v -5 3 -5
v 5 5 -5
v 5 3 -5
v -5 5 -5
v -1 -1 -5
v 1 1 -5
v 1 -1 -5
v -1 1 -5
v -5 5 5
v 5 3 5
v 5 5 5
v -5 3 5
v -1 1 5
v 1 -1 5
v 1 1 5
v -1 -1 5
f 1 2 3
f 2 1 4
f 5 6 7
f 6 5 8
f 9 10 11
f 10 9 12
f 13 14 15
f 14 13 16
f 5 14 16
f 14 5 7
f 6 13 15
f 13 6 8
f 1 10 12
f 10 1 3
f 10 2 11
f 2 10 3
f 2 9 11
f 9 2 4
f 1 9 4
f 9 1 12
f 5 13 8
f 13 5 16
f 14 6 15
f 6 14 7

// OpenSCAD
// Generated by SolidPython 1.1.3 on 2025-02-20 04:04:14
$fn=50;


intersection() {
	translate(v = [-5.0000000000, -5.0000000000, -5.0000000000]) {
		linear_extrude(height = 10) {
			polygon(points = [[0, 0], [2.0000000000, 0], [2.0000000000, 4.0000000000], [7.5000000000, 4.0000000000], [7.5000000000, 6.0000000000], [2.0000000000, 6.0000000000], [2.0000000000, 8.0000000000], [10, 8.0000000000], [10, 10], [0, 10]]);
		}
	}
	rotate(a = -90, v = [0, 0, 1]) {
		translate(v = [-5.0000000000, -5.0000000000, -5.0000000000]) {
			linear_extrude(height = 10) {
				polygon(points = [[0, 0], [2.0000000000, 0], [2.0000000000, 4.0000000000], [7.5000000000, 4.0000000000], [7.5000000000, 6.0000000000], [2.0000000000, 6.0000000000], [2.0000000000, 8.0000000000], [10, 8.0000000000], [10, 10], [0, 10]]);
			}
		}
	}
}
/***********************************************
*********      SolidPython code:      **********
************************************************
 
from solid import *
from solid.utils import *

import math
import matplotlib.pyplot as plt
import subprocess
import os

class Hole:
    def __init__(self, x, y, radius):
        """
        Hole defined by:
        :param x: x dimension for center point of the circle as a ratio of letter height
        :param y: y dimension for center point of the circle as a ratio of letter height
        :param radius: radius of circle as a ratio of letter height
        """
        self.x = x
        self.y = y
        self.radius = radius

class Letter3D:
    def __init__(self, name, outer_shape_points, height, holes=None):
        """
        3D Letter defined by:
        :param name: name of letter
        :param outer_shape_points: points defining the outer shape of the letter
        :param heigh: size of cube that letter fits inside
        :param holes: list of Holes
        """
        self.name = name
        self.outer_shape_points = outer_shape_points
        self.holes = holes if holes is None else []
        self.height = height


    def generate(self):
        shape = polygon(points=self.outer_shape_points)

        if self.holes:
            for hole in self.holes:
                circle_hole = circle(r=hole.radius*self.height)
                positioned_hole = translate([hole.x*self.height, hole.y*self.height])(circle_hole)
                shape = difference()(shape, positioned_hole)
        
        shape_3d = linear_extrude(height=self.height)(shape)
        shape_3d = translate([-self.height/2, -self.height/2, -self.height/2])(shape_3d)
        return shape_3d
    
    def render(self):
        scad_render_to_file(self.shape, f"output/{self.name}.scad", file_header='$fn=50;')
        subprocess.run(["C:\\Program Files\\OpenSCAD\\openscad.exe", "-o", f"output\\{self.name}.stl", f"output\\{self.name}.scad"])


class TwoLetter3D:
    def __init__(self, height, letterA, letterA_face, letterB=None, letterB_face=None):
        self.height = height
        self.letterA = letterA
        self.letterB = letterB
        self.letterA_face = letterA_face
        self.letterB_face = letterB_face

    def call_letter_generation(self, letter):
        letter = letter.upper()
        function_name = f"letter_{letter}"
        func = globals().get(function_name)
        if func is None:
            raise ValueError(f"No letter generation function defined for letter '{letter}'.")
        else:
            print(func)
        return func(self.height)
    
    def rotate_object(self, face, shape):
        face = face.lower()
        if face == "z":
            return shape
        if face == "x":
            return rotate(a=90, v=[0,1,0])(shape)
        if face == "y":
            return rotate(a=-90, v=[0,0,1])(shape)
        else:
            raise ValueError("Face must be one of 'x', 'y', or 'z'.")

    def render(self):
        if self.letterA:
            letterA3D = self.call_letter_generation(self.letterA)
            letterA3D = self.rotate_object(self.letterA_face, letterA3D)

        if self.letterB:
            letterB3D = self.call_letter_generation(self.letterB)
            letterB3D = self.rotate_object(self.letterB_face, letterB3D)
            combined = intersection()(letterA3D, letterB3D)
            file_name = self.letterA + self.letterB
            scad_render_to_file(combined, f"output/{file_name}.scad", file_header='$fn=50;')
            subprocess.run(["C:\\Program Files\\OpenSCAD\\openscad.exe", "-o", f"output\\{file_name}.stl", f"output\\{file_name}.scad"])
            return
        else:
            file_name = self.letterA
            scad_render_to_file(letterA3D, f"output/{file_name}.scad", file_header='$fn=50;')
            subprocess.run(["C:\\Program Files\\OpenSCAD\\openscad.exe", "-o", f"output\\{file_name}.stl", f"output\\{file_name}.scad"])
    
                

def arc_points(radius, start_angle, end_angle, center=[0,0], num_points=50):
    angles = [start_angle + i * (end_angle - start_angle) / (num_points - 1)
              for i in range(num_points)]
    points = [
        (center[0] + radius * math.cos(math.radians(angle)),
         center[1] + radius * math.sin(math.radians(angle)))
        for angle in angles
    ]
    return points

def letter_A(h):
    shape_points = [(0,0), (h/2, h), (h, 0), (5/6*h, 0), (2/3*h, 1/3*h), (1/3*h, 1/3*h), (h/6, 0)]
    holes = [Hole(1/2, 7/12, 1/6)]
    A = Letter3D("A", shape_points, h, holes)
    return A.generate()

def letter_B(h):
    top_arc_points = arc_points(h/4, 90, -90, center=[3/4*h, 3/4*h])
    bottom_arc_points = arc_points(h/4, 90, -90, center=[3/4*h, h/4])
    other_points = [(0,0),(0,h)]

    shape_points = top_arc_points + bottom_arc_points + other_points
    holes = [Hole(1/2, 3/4, 1/6), Hole(1/2, 1/4, 1/6)]
    B = Letter3D("B", shape_points, h, holes)
    return B.generate()

def letter_C(h):
    outer_arc_points = arc_points(h/2, 30, 330, center=[h/2,h/2])
    inner_arc_points = arc_points(h/4, 30, 330, center=[h/2,h/2])[::-1]
    shape_points = outer_arc_points + inner_arc_points
    # print(shape_points)
    C = Letter3D("C", shape_points, h)
    return C.generate()


def letter_D(h):
    outer_arc_points = arc_points(h/2, 90, -90, center= [h/2, h/2])
    shape_points = outer_arc_points + [(0,0), (0, h)]
    holes = [Hole(1/2, 1/2, 1/6)]
    D = Letter3D("D", shape_points, h, holes)
    return D.generate()

def letter_E(h):
    points = [(0,0), (h,0), (h,h/5), (h/5,h/5), (h/5,2/5*h), (3/4*h,2/5*h), (3/4*h,3/5*h), (h/5,3/5*h), (h/5,4/5*h), (h,4/5*h), (h,h), (0,h)]
    E = Letter3D("E", points, h)
    return E.generate()

def letter_F(h):
    points = [(0,0), (h/5,0), (h/5,2/5*h), (3/4*h,2/5*h), (3/4*h,3/5*h), (h/5,3/5*h), (h/5,4/5*h), (h,4/5*h), (h,h), (0,h)]
    F = Letter3D("F", points, h)
    return F.generate()

if __name__ == "__main__":
    os.makedirs("output", exist_ok=True)
    # Generate all combos
    letters = [chr(x) for x in range(ord('A'), ord('F') + 1)]
    for letter in letters:
        for other_letter in letters:
            shape = TwoLetter3D(10, letter, "z", other_letter, "y")
            shape.render()
 
 
************************************************/
